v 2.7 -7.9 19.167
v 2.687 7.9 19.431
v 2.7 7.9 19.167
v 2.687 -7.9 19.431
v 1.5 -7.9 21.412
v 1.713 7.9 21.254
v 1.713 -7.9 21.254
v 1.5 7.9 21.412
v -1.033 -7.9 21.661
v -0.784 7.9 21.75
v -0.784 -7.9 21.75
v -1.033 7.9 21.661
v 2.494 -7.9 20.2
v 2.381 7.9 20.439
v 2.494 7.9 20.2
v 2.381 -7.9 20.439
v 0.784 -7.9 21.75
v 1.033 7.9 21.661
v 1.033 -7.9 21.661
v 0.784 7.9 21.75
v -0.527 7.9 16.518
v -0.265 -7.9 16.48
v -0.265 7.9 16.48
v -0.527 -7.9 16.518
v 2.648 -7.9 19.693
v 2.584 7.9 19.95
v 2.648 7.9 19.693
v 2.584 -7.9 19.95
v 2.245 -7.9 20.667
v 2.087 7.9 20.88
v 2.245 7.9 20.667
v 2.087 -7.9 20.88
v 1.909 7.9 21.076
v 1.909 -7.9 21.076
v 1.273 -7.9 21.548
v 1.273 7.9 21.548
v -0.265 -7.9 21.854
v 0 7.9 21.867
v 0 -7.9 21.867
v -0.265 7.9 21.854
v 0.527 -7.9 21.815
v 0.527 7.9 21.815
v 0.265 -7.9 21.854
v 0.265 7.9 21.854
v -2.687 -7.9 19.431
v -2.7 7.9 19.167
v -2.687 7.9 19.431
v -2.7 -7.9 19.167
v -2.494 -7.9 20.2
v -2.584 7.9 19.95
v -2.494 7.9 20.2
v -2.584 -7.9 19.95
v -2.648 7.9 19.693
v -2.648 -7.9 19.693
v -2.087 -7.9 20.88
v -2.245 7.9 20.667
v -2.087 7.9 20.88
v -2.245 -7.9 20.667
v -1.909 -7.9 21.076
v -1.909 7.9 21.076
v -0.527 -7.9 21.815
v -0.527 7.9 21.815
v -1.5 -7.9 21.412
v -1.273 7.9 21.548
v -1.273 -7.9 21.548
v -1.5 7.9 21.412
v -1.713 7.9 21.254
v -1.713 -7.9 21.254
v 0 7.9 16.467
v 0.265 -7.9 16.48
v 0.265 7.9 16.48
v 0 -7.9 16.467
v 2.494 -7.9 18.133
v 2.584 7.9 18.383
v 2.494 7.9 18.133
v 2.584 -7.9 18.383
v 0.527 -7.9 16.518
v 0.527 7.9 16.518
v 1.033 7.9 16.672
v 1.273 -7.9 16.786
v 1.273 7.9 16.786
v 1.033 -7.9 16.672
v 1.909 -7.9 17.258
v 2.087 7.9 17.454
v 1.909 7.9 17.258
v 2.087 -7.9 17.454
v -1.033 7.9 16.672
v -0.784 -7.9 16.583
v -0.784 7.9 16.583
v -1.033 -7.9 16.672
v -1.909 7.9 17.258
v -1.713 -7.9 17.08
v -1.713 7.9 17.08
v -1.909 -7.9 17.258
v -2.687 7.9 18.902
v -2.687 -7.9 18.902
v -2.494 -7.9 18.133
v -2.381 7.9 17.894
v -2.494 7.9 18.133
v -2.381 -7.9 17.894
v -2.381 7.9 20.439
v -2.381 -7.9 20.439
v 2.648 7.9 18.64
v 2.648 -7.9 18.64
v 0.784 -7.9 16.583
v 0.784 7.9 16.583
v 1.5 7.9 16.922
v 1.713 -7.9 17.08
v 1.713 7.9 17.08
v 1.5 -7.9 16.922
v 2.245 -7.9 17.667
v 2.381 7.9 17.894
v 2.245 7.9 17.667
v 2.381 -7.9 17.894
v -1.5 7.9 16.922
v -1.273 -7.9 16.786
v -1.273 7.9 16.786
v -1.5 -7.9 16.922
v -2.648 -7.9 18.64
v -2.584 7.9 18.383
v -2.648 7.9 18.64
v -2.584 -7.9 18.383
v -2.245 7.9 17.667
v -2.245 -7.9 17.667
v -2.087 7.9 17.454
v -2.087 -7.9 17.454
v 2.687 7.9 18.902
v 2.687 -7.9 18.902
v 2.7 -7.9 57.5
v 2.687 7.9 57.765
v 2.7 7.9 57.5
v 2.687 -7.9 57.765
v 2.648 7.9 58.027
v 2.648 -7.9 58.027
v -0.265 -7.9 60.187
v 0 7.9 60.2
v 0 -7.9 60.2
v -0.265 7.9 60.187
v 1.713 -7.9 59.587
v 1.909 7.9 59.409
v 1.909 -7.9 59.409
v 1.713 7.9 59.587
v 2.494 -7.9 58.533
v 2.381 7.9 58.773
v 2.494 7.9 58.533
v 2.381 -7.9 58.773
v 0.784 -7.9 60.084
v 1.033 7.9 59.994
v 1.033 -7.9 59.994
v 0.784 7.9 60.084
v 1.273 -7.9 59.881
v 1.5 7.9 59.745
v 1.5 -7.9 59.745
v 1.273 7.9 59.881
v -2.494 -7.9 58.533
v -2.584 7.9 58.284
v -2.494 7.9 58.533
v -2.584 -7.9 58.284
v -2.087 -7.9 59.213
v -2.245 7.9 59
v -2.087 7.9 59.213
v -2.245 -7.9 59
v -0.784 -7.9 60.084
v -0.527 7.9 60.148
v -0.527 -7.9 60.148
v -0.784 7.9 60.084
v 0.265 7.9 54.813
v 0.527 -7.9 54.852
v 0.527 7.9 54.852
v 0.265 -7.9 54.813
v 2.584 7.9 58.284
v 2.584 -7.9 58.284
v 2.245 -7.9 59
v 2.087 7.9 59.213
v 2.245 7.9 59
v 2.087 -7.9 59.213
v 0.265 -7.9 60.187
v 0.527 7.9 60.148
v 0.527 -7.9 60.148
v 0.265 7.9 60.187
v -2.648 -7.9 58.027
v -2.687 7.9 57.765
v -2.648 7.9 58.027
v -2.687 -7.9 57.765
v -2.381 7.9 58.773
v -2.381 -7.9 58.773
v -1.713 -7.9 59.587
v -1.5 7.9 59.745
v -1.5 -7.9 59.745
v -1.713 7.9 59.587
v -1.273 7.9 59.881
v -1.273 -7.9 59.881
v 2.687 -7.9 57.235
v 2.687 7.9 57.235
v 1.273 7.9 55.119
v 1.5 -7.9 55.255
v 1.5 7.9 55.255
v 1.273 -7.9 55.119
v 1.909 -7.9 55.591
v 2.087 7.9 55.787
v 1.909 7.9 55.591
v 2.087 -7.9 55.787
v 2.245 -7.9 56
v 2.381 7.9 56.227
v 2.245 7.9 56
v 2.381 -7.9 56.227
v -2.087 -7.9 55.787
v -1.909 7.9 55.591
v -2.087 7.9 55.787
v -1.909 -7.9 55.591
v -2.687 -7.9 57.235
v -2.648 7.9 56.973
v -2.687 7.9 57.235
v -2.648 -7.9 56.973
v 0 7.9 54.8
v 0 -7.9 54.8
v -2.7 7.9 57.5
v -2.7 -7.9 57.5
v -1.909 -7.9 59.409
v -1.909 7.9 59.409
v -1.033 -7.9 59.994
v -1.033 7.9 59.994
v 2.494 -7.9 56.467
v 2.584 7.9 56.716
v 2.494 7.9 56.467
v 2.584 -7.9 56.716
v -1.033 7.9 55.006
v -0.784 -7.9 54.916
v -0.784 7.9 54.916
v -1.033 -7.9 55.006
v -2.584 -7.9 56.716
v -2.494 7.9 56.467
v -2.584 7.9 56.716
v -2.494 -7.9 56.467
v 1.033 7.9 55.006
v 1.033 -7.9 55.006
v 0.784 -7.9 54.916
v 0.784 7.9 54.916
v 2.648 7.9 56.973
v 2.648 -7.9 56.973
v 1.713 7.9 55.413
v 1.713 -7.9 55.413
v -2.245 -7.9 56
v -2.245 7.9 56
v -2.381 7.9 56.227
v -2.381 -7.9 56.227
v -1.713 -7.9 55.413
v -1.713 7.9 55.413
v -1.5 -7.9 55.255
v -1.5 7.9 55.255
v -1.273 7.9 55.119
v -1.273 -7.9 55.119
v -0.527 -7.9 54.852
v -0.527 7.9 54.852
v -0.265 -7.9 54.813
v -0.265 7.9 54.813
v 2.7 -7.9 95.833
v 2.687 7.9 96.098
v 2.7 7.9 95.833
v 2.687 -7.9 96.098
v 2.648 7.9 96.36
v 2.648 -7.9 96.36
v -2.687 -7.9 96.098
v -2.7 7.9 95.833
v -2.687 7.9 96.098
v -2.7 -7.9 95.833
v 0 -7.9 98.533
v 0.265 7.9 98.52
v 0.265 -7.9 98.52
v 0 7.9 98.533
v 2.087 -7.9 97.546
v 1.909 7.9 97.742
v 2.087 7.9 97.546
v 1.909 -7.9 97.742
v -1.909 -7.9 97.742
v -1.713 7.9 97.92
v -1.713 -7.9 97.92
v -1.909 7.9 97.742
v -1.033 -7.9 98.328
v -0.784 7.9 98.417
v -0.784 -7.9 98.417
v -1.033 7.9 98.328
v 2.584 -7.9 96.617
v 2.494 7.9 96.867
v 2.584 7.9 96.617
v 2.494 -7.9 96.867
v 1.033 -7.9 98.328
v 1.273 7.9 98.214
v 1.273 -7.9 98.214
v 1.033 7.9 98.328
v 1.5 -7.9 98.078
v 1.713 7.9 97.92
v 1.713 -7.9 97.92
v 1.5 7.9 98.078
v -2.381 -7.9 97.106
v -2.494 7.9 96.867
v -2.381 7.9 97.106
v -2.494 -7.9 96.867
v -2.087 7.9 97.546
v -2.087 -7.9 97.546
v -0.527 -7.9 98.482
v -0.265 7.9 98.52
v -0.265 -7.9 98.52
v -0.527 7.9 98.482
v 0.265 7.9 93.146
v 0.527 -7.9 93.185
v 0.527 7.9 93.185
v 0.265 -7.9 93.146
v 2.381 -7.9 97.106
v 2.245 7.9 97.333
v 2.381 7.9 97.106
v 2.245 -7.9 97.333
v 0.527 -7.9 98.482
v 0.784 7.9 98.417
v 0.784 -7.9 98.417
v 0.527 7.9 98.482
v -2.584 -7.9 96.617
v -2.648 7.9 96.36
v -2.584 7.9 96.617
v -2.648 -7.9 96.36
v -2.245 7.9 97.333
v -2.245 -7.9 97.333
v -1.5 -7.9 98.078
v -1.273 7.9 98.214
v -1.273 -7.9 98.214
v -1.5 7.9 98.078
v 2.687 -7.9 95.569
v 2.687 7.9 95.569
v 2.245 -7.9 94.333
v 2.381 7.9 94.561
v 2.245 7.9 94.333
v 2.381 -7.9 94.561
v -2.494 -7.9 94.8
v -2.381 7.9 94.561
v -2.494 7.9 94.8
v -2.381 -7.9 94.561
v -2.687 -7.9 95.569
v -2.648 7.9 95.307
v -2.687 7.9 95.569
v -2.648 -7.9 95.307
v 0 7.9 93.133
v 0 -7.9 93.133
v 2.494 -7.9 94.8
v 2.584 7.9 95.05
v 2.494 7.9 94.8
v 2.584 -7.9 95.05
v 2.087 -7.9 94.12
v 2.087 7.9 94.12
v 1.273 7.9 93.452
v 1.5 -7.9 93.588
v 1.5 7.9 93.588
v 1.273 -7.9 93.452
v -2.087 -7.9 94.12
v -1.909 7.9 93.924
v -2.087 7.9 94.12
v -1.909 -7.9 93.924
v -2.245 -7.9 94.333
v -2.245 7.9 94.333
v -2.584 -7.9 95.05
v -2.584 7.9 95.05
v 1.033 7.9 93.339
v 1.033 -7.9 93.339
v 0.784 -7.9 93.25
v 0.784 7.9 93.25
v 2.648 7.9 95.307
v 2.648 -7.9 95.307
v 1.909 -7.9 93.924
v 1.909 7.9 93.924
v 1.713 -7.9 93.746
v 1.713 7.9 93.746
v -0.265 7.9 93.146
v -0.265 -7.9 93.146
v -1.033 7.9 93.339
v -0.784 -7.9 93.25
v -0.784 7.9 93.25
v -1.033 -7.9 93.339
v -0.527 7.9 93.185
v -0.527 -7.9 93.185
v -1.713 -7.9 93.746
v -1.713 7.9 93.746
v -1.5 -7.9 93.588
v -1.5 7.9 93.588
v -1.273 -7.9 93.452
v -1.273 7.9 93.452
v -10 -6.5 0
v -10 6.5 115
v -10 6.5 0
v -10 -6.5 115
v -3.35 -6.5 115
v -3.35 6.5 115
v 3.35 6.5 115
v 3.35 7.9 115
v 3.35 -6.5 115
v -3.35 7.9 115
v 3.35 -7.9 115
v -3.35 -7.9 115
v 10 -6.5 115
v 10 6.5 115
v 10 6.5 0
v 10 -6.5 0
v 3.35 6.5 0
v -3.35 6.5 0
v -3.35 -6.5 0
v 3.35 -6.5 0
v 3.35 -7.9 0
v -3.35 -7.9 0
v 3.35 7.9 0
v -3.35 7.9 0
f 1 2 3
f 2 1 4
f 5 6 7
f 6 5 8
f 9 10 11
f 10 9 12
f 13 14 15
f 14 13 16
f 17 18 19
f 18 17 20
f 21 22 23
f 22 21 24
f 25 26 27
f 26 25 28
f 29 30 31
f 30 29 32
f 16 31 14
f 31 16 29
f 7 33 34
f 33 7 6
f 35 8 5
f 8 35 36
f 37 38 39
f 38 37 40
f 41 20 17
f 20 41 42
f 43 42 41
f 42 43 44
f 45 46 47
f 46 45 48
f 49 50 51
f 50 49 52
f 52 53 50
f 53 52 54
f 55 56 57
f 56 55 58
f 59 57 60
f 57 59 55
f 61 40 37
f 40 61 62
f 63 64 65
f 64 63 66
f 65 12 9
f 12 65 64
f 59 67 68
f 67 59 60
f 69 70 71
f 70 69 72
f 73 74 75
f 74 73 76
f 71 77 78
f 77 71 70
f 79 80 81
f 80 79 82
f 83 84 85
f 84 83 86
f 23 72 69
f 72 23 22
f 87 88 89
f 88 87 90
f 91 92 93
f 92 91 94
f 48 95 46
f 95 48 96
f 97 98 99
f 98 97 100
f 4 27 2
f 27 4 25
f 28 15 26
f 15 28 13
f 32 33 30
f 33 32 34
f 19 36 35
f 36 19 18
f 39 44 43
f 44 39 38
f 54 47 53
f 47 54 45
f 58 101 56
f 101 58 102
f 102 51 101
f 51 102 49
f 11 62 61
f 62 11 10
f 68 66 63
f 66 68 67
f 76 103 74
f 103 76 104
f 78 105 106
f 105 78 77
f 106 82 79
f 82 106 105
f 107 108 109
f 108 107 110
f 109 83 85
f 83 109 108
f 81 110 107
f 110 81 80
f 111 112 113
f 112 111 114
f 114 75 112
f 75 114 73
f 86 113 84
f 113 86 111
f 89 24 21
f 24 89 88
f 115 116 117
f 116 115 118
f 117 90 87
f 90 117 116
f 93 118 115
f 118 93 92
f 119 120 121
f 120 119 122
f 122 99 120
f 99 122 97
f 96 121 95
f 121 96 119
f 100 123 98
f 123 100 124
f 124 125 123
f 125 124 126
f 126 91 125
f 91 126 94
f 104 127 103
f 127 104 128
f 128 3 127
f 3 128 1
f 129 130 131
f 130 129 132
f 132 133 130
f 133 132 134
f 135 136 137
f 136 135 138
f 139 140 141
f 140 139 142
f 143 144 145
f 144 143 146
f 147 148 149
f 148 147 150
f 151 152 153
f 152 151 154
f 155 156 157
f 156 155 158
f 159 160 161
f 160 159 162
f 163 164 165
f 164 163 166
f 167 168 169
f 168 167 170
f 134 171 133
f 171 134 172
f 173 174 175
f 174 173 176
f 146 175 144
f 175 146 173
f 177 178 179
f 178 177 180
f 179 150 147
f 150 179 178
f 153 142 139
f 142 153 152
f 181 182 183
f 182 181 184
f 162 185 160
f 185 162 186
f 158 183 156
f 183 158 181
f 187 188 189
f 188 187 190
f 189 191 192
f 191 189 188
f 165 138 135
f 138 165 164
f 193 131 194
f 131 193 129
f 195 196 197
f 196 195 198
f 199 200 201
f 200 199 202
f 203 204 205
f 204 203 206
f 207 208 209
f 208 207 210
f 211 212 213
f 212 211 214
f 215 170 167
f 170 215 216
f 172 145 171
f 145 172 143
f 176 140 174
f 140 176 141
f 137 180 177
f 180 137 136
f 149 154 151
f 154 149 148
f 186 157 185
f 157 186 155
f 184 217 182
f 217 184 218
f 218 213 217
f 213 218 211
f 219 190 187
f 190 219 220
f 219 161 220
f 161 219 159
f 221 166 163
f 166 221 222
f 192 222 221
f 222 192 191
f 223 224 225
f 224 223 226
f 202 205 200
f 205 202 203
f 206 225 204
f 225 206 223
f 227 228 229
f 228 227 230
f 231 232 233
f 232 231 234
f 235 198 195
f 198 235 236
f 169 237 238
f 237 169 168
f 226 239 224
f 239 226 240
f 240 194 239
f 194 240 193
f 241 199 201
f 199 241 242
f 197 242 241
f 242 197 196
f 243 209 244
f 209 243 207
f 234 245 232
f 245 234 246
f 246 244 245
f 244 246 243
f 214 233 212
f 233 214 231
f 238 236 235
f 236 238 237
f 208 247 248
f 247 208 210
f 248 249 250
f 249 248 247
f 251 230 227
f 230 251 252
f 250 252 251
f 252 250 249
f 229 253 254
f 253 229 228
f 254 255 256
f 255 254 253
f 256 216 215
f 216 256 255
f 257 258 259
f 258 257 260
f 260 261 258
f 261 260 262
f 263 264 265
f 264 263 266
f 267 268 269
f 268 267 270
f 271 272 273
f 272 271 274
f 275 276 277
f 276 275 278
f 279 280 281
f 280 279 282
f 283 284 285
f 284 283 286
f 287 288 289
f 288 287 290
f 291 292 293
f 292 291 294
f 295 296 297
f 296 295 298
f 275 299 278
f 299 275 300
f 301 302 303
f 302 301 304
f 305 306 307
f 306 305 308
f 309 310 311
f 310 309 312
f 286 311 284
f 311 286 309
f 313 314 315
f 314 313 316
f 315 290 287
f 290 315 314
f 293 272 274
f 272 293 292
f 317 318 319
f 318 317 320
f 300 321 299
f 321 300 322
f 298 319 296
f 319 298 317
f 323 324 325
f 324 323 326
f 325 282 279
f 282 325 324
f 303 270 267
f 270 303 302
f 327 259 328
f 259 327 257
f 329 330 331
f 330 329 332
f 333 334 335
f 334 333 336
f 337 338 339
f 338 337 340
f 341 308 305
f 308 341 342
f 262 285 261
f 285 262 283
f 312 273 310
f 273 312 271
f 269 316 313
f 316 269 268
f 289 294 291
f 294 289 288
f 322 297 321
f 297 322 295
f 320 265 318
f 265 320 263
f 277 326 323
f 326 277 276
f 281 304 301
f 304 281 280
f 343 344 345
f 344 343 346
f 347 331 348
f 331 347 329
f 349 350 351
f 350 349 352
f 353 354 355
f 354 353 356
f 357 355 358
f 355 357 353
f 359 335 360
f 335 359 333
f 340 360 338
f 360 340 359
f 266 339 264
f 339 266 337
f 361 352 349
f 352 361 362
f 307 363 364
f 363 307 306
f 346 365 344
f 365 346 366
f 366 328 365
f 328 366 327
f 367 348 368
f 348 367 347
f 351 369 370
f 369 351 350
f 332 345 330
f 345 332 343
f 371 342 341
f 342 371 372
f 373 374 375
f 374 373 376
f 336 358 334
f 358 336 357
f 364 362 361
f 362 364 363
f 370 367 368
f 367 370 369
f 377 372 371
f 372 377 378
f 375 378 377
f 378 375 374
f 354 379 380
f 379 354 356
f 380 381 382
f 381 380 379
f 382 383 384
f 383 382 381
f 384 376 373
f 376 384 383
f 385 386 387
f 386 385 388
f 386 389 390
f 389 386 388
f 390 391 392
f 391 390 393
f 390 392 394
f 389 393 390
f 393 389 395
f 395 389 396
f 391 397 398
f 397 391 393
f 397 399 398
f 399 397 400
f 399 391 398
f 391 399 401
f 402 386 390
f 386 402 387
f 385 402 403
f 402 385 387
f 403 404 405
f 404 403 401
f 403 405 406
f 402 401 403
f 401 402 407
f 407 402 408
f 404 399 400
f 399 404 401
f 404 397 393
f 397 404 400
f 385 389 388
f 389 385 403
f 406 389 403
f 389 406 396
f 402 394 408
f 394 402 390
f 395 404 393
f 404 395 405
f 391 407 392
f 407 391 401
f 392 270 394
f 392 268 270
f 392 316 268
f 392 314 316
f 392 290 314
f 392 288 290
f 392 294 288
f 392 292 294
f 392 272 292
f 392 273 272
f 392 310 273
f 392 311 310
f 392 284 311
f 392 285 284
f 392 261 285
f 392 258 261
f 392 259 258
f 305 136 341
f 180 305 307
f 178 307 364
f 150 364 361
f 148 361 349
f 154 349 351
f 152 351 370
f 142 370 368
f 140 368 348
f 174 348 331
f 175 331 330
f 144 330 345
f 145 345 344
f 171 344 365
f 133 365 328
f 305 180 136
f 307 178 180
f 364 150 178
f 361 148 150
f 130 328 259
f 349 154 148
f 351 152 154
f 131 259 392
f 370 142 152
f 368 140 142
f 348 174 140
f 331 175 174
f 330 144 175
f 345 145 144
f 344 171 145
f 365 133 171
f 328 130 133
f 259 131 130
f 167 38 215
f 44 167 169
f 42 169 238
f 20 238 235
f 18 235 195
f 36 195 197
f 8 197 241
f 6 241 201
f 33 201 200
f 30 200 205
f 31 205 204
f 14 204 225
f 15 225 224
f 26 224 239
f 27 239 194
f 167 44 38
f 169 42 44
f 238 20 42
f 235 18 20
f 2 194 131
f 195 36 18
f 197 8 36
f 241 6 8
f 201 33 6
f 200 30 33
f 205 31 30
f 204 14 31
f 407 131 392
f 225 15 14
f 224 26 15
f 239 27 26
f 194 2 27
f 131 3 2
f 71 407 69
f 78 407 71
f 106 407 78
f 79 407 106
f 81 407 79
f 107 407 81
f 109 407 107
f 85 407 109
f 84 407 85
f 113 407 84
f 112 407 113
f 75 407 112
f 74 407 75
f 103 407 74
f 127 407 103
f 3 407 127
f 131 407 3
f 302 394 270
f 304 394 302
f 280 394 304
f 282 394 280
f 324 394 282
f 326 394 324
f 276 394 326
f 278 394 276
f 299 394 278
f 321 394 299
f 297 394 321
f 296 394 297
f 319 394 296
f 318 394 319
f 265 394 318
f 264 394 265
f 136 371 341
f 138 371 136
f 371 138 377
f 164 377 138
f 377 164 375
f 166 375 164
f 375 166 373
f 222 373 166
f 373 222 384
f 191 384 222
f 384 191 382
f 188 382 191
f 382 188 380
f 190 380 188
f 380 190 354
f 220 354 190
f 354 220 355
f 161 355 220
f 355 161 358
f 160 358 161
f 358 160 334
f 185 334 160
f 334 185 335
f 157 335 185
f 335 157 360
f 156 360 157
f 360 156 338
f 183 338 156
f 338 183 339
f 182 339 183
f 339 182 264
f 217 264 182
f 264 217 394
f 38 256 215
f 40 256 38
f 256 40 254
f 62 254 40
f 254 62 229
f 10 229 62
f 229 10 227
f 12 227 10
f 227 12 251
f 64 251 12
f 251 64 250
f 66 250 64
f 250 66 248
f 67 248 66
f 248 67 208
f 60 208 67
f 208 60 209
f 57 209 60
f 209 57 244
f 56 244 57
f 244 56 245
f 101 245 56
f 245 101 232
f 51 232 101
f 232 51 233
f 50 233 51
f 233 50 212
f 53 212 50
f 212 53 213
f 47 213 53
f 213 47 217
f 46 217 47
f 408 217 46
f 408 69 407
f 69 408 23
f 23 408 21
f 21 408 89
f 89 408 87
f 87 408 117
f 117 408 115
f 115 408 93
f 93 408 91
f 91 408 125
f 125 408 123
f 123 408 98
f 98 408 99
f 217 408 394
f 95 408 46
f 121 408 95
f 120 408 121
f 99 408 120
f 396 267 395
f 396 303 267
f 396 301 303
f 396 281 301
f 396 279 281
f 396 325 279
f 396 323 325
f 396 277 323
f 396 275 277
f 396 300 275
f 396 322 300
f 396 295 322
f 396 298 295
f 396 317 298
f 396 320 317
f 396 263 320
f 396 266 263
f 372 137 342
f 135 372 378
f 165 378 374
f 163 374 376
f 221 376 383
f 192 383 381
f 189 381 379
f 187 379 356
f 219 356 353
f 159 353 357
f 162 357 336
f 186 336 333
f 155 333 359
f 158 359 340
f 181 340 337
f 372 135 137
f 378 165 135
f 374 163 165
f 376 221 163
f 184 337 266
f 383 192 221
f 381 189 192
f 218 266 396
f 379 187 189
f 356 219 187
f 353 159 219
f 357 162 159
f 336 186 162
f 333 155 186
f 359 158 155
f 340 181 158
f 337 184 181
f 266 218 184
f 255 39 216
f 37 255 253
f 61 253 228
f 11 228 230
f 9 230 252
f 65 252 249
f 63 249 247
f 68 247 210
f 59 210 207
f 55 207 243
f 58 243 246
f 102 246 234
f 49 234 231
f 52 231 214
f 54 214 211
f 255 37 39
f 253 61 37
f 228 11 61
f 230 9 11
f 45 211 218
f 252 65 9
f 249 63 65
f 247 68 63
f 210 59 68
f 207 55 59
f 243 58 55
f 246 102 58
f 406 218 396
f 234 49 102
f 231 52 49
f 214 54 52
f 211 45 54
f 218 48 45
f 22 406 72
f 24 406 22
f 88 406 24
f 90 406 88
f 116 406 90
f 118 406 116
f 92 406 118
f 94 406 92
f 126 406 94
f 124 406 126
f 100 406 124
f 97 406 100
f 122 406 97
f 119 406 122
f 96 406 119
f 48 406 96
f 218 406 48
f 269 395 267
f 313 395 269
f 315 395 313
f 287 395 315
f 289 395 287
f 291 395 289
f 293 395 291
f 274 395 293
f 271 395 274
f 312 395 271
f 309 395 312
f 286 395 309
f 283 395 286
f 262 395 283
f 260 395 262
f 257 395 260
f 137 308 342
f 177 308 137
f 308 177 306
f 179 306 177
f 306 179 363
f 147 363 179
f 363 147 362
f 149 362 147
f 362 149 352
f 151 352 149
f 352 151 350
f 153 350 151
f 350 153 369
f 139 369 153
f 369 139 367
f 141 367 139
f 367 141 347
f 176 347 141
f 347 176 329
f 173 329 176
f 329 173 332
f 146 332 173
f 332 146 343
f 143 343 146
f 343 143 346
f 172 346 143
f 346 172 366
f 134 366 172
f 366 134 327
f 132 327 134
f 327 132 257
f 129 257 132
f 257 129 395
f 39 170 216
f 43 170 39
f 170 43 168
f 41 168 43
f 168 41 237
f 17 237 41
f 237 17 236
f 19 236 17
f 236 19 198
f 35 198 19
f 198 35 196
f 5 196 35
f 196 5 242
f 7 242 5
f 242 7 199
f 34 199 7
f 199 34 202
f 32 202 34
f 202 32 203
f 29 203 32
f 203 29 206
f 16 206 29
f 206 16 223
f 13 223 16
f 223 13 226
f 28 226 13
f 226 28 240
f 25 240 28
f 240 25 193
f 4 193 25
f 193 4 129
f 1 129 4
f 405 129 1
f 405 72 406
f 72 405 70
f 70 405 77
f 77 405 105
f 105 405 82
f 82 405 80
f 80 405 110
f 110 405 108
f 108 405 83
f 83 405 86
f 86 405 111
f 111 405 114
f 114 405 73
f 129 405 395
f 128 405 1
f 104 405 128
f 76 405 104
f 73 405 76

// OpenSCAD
module Z_Parts_Mount_Assistant() {
  cz=115;
  cy=13;
  difference() {
    union() {
      translate([0, 0, cz/2]) cube([20, cy, cz], center=true);
      translate([0, 0, cz/2]) cube([20-(6.65*2), cy+2.8, cz], center=true);
    }
    color("Red") {
      //translate([0, 14, cz/2-2]) cube([20-(4*2), 24, cz+10], center=true);
      translate([0, 30, cz/6]) rotate([90]) cylinder(d=5.4, h=60);
      translate([0, 30, cz/2]) rotate([90]) cylinder(d=5.4, h=60);
      translate([0, 30, cz-cz/6]) rotate([90]) cylinder(d=5.4, h=60);
    }
  }
  %translate([0, 10, cz/2]) rotate([90]) cylinder(d=5.2, h=19.5);
}

Z_Parts_Mount_Assistant($fn=64);
